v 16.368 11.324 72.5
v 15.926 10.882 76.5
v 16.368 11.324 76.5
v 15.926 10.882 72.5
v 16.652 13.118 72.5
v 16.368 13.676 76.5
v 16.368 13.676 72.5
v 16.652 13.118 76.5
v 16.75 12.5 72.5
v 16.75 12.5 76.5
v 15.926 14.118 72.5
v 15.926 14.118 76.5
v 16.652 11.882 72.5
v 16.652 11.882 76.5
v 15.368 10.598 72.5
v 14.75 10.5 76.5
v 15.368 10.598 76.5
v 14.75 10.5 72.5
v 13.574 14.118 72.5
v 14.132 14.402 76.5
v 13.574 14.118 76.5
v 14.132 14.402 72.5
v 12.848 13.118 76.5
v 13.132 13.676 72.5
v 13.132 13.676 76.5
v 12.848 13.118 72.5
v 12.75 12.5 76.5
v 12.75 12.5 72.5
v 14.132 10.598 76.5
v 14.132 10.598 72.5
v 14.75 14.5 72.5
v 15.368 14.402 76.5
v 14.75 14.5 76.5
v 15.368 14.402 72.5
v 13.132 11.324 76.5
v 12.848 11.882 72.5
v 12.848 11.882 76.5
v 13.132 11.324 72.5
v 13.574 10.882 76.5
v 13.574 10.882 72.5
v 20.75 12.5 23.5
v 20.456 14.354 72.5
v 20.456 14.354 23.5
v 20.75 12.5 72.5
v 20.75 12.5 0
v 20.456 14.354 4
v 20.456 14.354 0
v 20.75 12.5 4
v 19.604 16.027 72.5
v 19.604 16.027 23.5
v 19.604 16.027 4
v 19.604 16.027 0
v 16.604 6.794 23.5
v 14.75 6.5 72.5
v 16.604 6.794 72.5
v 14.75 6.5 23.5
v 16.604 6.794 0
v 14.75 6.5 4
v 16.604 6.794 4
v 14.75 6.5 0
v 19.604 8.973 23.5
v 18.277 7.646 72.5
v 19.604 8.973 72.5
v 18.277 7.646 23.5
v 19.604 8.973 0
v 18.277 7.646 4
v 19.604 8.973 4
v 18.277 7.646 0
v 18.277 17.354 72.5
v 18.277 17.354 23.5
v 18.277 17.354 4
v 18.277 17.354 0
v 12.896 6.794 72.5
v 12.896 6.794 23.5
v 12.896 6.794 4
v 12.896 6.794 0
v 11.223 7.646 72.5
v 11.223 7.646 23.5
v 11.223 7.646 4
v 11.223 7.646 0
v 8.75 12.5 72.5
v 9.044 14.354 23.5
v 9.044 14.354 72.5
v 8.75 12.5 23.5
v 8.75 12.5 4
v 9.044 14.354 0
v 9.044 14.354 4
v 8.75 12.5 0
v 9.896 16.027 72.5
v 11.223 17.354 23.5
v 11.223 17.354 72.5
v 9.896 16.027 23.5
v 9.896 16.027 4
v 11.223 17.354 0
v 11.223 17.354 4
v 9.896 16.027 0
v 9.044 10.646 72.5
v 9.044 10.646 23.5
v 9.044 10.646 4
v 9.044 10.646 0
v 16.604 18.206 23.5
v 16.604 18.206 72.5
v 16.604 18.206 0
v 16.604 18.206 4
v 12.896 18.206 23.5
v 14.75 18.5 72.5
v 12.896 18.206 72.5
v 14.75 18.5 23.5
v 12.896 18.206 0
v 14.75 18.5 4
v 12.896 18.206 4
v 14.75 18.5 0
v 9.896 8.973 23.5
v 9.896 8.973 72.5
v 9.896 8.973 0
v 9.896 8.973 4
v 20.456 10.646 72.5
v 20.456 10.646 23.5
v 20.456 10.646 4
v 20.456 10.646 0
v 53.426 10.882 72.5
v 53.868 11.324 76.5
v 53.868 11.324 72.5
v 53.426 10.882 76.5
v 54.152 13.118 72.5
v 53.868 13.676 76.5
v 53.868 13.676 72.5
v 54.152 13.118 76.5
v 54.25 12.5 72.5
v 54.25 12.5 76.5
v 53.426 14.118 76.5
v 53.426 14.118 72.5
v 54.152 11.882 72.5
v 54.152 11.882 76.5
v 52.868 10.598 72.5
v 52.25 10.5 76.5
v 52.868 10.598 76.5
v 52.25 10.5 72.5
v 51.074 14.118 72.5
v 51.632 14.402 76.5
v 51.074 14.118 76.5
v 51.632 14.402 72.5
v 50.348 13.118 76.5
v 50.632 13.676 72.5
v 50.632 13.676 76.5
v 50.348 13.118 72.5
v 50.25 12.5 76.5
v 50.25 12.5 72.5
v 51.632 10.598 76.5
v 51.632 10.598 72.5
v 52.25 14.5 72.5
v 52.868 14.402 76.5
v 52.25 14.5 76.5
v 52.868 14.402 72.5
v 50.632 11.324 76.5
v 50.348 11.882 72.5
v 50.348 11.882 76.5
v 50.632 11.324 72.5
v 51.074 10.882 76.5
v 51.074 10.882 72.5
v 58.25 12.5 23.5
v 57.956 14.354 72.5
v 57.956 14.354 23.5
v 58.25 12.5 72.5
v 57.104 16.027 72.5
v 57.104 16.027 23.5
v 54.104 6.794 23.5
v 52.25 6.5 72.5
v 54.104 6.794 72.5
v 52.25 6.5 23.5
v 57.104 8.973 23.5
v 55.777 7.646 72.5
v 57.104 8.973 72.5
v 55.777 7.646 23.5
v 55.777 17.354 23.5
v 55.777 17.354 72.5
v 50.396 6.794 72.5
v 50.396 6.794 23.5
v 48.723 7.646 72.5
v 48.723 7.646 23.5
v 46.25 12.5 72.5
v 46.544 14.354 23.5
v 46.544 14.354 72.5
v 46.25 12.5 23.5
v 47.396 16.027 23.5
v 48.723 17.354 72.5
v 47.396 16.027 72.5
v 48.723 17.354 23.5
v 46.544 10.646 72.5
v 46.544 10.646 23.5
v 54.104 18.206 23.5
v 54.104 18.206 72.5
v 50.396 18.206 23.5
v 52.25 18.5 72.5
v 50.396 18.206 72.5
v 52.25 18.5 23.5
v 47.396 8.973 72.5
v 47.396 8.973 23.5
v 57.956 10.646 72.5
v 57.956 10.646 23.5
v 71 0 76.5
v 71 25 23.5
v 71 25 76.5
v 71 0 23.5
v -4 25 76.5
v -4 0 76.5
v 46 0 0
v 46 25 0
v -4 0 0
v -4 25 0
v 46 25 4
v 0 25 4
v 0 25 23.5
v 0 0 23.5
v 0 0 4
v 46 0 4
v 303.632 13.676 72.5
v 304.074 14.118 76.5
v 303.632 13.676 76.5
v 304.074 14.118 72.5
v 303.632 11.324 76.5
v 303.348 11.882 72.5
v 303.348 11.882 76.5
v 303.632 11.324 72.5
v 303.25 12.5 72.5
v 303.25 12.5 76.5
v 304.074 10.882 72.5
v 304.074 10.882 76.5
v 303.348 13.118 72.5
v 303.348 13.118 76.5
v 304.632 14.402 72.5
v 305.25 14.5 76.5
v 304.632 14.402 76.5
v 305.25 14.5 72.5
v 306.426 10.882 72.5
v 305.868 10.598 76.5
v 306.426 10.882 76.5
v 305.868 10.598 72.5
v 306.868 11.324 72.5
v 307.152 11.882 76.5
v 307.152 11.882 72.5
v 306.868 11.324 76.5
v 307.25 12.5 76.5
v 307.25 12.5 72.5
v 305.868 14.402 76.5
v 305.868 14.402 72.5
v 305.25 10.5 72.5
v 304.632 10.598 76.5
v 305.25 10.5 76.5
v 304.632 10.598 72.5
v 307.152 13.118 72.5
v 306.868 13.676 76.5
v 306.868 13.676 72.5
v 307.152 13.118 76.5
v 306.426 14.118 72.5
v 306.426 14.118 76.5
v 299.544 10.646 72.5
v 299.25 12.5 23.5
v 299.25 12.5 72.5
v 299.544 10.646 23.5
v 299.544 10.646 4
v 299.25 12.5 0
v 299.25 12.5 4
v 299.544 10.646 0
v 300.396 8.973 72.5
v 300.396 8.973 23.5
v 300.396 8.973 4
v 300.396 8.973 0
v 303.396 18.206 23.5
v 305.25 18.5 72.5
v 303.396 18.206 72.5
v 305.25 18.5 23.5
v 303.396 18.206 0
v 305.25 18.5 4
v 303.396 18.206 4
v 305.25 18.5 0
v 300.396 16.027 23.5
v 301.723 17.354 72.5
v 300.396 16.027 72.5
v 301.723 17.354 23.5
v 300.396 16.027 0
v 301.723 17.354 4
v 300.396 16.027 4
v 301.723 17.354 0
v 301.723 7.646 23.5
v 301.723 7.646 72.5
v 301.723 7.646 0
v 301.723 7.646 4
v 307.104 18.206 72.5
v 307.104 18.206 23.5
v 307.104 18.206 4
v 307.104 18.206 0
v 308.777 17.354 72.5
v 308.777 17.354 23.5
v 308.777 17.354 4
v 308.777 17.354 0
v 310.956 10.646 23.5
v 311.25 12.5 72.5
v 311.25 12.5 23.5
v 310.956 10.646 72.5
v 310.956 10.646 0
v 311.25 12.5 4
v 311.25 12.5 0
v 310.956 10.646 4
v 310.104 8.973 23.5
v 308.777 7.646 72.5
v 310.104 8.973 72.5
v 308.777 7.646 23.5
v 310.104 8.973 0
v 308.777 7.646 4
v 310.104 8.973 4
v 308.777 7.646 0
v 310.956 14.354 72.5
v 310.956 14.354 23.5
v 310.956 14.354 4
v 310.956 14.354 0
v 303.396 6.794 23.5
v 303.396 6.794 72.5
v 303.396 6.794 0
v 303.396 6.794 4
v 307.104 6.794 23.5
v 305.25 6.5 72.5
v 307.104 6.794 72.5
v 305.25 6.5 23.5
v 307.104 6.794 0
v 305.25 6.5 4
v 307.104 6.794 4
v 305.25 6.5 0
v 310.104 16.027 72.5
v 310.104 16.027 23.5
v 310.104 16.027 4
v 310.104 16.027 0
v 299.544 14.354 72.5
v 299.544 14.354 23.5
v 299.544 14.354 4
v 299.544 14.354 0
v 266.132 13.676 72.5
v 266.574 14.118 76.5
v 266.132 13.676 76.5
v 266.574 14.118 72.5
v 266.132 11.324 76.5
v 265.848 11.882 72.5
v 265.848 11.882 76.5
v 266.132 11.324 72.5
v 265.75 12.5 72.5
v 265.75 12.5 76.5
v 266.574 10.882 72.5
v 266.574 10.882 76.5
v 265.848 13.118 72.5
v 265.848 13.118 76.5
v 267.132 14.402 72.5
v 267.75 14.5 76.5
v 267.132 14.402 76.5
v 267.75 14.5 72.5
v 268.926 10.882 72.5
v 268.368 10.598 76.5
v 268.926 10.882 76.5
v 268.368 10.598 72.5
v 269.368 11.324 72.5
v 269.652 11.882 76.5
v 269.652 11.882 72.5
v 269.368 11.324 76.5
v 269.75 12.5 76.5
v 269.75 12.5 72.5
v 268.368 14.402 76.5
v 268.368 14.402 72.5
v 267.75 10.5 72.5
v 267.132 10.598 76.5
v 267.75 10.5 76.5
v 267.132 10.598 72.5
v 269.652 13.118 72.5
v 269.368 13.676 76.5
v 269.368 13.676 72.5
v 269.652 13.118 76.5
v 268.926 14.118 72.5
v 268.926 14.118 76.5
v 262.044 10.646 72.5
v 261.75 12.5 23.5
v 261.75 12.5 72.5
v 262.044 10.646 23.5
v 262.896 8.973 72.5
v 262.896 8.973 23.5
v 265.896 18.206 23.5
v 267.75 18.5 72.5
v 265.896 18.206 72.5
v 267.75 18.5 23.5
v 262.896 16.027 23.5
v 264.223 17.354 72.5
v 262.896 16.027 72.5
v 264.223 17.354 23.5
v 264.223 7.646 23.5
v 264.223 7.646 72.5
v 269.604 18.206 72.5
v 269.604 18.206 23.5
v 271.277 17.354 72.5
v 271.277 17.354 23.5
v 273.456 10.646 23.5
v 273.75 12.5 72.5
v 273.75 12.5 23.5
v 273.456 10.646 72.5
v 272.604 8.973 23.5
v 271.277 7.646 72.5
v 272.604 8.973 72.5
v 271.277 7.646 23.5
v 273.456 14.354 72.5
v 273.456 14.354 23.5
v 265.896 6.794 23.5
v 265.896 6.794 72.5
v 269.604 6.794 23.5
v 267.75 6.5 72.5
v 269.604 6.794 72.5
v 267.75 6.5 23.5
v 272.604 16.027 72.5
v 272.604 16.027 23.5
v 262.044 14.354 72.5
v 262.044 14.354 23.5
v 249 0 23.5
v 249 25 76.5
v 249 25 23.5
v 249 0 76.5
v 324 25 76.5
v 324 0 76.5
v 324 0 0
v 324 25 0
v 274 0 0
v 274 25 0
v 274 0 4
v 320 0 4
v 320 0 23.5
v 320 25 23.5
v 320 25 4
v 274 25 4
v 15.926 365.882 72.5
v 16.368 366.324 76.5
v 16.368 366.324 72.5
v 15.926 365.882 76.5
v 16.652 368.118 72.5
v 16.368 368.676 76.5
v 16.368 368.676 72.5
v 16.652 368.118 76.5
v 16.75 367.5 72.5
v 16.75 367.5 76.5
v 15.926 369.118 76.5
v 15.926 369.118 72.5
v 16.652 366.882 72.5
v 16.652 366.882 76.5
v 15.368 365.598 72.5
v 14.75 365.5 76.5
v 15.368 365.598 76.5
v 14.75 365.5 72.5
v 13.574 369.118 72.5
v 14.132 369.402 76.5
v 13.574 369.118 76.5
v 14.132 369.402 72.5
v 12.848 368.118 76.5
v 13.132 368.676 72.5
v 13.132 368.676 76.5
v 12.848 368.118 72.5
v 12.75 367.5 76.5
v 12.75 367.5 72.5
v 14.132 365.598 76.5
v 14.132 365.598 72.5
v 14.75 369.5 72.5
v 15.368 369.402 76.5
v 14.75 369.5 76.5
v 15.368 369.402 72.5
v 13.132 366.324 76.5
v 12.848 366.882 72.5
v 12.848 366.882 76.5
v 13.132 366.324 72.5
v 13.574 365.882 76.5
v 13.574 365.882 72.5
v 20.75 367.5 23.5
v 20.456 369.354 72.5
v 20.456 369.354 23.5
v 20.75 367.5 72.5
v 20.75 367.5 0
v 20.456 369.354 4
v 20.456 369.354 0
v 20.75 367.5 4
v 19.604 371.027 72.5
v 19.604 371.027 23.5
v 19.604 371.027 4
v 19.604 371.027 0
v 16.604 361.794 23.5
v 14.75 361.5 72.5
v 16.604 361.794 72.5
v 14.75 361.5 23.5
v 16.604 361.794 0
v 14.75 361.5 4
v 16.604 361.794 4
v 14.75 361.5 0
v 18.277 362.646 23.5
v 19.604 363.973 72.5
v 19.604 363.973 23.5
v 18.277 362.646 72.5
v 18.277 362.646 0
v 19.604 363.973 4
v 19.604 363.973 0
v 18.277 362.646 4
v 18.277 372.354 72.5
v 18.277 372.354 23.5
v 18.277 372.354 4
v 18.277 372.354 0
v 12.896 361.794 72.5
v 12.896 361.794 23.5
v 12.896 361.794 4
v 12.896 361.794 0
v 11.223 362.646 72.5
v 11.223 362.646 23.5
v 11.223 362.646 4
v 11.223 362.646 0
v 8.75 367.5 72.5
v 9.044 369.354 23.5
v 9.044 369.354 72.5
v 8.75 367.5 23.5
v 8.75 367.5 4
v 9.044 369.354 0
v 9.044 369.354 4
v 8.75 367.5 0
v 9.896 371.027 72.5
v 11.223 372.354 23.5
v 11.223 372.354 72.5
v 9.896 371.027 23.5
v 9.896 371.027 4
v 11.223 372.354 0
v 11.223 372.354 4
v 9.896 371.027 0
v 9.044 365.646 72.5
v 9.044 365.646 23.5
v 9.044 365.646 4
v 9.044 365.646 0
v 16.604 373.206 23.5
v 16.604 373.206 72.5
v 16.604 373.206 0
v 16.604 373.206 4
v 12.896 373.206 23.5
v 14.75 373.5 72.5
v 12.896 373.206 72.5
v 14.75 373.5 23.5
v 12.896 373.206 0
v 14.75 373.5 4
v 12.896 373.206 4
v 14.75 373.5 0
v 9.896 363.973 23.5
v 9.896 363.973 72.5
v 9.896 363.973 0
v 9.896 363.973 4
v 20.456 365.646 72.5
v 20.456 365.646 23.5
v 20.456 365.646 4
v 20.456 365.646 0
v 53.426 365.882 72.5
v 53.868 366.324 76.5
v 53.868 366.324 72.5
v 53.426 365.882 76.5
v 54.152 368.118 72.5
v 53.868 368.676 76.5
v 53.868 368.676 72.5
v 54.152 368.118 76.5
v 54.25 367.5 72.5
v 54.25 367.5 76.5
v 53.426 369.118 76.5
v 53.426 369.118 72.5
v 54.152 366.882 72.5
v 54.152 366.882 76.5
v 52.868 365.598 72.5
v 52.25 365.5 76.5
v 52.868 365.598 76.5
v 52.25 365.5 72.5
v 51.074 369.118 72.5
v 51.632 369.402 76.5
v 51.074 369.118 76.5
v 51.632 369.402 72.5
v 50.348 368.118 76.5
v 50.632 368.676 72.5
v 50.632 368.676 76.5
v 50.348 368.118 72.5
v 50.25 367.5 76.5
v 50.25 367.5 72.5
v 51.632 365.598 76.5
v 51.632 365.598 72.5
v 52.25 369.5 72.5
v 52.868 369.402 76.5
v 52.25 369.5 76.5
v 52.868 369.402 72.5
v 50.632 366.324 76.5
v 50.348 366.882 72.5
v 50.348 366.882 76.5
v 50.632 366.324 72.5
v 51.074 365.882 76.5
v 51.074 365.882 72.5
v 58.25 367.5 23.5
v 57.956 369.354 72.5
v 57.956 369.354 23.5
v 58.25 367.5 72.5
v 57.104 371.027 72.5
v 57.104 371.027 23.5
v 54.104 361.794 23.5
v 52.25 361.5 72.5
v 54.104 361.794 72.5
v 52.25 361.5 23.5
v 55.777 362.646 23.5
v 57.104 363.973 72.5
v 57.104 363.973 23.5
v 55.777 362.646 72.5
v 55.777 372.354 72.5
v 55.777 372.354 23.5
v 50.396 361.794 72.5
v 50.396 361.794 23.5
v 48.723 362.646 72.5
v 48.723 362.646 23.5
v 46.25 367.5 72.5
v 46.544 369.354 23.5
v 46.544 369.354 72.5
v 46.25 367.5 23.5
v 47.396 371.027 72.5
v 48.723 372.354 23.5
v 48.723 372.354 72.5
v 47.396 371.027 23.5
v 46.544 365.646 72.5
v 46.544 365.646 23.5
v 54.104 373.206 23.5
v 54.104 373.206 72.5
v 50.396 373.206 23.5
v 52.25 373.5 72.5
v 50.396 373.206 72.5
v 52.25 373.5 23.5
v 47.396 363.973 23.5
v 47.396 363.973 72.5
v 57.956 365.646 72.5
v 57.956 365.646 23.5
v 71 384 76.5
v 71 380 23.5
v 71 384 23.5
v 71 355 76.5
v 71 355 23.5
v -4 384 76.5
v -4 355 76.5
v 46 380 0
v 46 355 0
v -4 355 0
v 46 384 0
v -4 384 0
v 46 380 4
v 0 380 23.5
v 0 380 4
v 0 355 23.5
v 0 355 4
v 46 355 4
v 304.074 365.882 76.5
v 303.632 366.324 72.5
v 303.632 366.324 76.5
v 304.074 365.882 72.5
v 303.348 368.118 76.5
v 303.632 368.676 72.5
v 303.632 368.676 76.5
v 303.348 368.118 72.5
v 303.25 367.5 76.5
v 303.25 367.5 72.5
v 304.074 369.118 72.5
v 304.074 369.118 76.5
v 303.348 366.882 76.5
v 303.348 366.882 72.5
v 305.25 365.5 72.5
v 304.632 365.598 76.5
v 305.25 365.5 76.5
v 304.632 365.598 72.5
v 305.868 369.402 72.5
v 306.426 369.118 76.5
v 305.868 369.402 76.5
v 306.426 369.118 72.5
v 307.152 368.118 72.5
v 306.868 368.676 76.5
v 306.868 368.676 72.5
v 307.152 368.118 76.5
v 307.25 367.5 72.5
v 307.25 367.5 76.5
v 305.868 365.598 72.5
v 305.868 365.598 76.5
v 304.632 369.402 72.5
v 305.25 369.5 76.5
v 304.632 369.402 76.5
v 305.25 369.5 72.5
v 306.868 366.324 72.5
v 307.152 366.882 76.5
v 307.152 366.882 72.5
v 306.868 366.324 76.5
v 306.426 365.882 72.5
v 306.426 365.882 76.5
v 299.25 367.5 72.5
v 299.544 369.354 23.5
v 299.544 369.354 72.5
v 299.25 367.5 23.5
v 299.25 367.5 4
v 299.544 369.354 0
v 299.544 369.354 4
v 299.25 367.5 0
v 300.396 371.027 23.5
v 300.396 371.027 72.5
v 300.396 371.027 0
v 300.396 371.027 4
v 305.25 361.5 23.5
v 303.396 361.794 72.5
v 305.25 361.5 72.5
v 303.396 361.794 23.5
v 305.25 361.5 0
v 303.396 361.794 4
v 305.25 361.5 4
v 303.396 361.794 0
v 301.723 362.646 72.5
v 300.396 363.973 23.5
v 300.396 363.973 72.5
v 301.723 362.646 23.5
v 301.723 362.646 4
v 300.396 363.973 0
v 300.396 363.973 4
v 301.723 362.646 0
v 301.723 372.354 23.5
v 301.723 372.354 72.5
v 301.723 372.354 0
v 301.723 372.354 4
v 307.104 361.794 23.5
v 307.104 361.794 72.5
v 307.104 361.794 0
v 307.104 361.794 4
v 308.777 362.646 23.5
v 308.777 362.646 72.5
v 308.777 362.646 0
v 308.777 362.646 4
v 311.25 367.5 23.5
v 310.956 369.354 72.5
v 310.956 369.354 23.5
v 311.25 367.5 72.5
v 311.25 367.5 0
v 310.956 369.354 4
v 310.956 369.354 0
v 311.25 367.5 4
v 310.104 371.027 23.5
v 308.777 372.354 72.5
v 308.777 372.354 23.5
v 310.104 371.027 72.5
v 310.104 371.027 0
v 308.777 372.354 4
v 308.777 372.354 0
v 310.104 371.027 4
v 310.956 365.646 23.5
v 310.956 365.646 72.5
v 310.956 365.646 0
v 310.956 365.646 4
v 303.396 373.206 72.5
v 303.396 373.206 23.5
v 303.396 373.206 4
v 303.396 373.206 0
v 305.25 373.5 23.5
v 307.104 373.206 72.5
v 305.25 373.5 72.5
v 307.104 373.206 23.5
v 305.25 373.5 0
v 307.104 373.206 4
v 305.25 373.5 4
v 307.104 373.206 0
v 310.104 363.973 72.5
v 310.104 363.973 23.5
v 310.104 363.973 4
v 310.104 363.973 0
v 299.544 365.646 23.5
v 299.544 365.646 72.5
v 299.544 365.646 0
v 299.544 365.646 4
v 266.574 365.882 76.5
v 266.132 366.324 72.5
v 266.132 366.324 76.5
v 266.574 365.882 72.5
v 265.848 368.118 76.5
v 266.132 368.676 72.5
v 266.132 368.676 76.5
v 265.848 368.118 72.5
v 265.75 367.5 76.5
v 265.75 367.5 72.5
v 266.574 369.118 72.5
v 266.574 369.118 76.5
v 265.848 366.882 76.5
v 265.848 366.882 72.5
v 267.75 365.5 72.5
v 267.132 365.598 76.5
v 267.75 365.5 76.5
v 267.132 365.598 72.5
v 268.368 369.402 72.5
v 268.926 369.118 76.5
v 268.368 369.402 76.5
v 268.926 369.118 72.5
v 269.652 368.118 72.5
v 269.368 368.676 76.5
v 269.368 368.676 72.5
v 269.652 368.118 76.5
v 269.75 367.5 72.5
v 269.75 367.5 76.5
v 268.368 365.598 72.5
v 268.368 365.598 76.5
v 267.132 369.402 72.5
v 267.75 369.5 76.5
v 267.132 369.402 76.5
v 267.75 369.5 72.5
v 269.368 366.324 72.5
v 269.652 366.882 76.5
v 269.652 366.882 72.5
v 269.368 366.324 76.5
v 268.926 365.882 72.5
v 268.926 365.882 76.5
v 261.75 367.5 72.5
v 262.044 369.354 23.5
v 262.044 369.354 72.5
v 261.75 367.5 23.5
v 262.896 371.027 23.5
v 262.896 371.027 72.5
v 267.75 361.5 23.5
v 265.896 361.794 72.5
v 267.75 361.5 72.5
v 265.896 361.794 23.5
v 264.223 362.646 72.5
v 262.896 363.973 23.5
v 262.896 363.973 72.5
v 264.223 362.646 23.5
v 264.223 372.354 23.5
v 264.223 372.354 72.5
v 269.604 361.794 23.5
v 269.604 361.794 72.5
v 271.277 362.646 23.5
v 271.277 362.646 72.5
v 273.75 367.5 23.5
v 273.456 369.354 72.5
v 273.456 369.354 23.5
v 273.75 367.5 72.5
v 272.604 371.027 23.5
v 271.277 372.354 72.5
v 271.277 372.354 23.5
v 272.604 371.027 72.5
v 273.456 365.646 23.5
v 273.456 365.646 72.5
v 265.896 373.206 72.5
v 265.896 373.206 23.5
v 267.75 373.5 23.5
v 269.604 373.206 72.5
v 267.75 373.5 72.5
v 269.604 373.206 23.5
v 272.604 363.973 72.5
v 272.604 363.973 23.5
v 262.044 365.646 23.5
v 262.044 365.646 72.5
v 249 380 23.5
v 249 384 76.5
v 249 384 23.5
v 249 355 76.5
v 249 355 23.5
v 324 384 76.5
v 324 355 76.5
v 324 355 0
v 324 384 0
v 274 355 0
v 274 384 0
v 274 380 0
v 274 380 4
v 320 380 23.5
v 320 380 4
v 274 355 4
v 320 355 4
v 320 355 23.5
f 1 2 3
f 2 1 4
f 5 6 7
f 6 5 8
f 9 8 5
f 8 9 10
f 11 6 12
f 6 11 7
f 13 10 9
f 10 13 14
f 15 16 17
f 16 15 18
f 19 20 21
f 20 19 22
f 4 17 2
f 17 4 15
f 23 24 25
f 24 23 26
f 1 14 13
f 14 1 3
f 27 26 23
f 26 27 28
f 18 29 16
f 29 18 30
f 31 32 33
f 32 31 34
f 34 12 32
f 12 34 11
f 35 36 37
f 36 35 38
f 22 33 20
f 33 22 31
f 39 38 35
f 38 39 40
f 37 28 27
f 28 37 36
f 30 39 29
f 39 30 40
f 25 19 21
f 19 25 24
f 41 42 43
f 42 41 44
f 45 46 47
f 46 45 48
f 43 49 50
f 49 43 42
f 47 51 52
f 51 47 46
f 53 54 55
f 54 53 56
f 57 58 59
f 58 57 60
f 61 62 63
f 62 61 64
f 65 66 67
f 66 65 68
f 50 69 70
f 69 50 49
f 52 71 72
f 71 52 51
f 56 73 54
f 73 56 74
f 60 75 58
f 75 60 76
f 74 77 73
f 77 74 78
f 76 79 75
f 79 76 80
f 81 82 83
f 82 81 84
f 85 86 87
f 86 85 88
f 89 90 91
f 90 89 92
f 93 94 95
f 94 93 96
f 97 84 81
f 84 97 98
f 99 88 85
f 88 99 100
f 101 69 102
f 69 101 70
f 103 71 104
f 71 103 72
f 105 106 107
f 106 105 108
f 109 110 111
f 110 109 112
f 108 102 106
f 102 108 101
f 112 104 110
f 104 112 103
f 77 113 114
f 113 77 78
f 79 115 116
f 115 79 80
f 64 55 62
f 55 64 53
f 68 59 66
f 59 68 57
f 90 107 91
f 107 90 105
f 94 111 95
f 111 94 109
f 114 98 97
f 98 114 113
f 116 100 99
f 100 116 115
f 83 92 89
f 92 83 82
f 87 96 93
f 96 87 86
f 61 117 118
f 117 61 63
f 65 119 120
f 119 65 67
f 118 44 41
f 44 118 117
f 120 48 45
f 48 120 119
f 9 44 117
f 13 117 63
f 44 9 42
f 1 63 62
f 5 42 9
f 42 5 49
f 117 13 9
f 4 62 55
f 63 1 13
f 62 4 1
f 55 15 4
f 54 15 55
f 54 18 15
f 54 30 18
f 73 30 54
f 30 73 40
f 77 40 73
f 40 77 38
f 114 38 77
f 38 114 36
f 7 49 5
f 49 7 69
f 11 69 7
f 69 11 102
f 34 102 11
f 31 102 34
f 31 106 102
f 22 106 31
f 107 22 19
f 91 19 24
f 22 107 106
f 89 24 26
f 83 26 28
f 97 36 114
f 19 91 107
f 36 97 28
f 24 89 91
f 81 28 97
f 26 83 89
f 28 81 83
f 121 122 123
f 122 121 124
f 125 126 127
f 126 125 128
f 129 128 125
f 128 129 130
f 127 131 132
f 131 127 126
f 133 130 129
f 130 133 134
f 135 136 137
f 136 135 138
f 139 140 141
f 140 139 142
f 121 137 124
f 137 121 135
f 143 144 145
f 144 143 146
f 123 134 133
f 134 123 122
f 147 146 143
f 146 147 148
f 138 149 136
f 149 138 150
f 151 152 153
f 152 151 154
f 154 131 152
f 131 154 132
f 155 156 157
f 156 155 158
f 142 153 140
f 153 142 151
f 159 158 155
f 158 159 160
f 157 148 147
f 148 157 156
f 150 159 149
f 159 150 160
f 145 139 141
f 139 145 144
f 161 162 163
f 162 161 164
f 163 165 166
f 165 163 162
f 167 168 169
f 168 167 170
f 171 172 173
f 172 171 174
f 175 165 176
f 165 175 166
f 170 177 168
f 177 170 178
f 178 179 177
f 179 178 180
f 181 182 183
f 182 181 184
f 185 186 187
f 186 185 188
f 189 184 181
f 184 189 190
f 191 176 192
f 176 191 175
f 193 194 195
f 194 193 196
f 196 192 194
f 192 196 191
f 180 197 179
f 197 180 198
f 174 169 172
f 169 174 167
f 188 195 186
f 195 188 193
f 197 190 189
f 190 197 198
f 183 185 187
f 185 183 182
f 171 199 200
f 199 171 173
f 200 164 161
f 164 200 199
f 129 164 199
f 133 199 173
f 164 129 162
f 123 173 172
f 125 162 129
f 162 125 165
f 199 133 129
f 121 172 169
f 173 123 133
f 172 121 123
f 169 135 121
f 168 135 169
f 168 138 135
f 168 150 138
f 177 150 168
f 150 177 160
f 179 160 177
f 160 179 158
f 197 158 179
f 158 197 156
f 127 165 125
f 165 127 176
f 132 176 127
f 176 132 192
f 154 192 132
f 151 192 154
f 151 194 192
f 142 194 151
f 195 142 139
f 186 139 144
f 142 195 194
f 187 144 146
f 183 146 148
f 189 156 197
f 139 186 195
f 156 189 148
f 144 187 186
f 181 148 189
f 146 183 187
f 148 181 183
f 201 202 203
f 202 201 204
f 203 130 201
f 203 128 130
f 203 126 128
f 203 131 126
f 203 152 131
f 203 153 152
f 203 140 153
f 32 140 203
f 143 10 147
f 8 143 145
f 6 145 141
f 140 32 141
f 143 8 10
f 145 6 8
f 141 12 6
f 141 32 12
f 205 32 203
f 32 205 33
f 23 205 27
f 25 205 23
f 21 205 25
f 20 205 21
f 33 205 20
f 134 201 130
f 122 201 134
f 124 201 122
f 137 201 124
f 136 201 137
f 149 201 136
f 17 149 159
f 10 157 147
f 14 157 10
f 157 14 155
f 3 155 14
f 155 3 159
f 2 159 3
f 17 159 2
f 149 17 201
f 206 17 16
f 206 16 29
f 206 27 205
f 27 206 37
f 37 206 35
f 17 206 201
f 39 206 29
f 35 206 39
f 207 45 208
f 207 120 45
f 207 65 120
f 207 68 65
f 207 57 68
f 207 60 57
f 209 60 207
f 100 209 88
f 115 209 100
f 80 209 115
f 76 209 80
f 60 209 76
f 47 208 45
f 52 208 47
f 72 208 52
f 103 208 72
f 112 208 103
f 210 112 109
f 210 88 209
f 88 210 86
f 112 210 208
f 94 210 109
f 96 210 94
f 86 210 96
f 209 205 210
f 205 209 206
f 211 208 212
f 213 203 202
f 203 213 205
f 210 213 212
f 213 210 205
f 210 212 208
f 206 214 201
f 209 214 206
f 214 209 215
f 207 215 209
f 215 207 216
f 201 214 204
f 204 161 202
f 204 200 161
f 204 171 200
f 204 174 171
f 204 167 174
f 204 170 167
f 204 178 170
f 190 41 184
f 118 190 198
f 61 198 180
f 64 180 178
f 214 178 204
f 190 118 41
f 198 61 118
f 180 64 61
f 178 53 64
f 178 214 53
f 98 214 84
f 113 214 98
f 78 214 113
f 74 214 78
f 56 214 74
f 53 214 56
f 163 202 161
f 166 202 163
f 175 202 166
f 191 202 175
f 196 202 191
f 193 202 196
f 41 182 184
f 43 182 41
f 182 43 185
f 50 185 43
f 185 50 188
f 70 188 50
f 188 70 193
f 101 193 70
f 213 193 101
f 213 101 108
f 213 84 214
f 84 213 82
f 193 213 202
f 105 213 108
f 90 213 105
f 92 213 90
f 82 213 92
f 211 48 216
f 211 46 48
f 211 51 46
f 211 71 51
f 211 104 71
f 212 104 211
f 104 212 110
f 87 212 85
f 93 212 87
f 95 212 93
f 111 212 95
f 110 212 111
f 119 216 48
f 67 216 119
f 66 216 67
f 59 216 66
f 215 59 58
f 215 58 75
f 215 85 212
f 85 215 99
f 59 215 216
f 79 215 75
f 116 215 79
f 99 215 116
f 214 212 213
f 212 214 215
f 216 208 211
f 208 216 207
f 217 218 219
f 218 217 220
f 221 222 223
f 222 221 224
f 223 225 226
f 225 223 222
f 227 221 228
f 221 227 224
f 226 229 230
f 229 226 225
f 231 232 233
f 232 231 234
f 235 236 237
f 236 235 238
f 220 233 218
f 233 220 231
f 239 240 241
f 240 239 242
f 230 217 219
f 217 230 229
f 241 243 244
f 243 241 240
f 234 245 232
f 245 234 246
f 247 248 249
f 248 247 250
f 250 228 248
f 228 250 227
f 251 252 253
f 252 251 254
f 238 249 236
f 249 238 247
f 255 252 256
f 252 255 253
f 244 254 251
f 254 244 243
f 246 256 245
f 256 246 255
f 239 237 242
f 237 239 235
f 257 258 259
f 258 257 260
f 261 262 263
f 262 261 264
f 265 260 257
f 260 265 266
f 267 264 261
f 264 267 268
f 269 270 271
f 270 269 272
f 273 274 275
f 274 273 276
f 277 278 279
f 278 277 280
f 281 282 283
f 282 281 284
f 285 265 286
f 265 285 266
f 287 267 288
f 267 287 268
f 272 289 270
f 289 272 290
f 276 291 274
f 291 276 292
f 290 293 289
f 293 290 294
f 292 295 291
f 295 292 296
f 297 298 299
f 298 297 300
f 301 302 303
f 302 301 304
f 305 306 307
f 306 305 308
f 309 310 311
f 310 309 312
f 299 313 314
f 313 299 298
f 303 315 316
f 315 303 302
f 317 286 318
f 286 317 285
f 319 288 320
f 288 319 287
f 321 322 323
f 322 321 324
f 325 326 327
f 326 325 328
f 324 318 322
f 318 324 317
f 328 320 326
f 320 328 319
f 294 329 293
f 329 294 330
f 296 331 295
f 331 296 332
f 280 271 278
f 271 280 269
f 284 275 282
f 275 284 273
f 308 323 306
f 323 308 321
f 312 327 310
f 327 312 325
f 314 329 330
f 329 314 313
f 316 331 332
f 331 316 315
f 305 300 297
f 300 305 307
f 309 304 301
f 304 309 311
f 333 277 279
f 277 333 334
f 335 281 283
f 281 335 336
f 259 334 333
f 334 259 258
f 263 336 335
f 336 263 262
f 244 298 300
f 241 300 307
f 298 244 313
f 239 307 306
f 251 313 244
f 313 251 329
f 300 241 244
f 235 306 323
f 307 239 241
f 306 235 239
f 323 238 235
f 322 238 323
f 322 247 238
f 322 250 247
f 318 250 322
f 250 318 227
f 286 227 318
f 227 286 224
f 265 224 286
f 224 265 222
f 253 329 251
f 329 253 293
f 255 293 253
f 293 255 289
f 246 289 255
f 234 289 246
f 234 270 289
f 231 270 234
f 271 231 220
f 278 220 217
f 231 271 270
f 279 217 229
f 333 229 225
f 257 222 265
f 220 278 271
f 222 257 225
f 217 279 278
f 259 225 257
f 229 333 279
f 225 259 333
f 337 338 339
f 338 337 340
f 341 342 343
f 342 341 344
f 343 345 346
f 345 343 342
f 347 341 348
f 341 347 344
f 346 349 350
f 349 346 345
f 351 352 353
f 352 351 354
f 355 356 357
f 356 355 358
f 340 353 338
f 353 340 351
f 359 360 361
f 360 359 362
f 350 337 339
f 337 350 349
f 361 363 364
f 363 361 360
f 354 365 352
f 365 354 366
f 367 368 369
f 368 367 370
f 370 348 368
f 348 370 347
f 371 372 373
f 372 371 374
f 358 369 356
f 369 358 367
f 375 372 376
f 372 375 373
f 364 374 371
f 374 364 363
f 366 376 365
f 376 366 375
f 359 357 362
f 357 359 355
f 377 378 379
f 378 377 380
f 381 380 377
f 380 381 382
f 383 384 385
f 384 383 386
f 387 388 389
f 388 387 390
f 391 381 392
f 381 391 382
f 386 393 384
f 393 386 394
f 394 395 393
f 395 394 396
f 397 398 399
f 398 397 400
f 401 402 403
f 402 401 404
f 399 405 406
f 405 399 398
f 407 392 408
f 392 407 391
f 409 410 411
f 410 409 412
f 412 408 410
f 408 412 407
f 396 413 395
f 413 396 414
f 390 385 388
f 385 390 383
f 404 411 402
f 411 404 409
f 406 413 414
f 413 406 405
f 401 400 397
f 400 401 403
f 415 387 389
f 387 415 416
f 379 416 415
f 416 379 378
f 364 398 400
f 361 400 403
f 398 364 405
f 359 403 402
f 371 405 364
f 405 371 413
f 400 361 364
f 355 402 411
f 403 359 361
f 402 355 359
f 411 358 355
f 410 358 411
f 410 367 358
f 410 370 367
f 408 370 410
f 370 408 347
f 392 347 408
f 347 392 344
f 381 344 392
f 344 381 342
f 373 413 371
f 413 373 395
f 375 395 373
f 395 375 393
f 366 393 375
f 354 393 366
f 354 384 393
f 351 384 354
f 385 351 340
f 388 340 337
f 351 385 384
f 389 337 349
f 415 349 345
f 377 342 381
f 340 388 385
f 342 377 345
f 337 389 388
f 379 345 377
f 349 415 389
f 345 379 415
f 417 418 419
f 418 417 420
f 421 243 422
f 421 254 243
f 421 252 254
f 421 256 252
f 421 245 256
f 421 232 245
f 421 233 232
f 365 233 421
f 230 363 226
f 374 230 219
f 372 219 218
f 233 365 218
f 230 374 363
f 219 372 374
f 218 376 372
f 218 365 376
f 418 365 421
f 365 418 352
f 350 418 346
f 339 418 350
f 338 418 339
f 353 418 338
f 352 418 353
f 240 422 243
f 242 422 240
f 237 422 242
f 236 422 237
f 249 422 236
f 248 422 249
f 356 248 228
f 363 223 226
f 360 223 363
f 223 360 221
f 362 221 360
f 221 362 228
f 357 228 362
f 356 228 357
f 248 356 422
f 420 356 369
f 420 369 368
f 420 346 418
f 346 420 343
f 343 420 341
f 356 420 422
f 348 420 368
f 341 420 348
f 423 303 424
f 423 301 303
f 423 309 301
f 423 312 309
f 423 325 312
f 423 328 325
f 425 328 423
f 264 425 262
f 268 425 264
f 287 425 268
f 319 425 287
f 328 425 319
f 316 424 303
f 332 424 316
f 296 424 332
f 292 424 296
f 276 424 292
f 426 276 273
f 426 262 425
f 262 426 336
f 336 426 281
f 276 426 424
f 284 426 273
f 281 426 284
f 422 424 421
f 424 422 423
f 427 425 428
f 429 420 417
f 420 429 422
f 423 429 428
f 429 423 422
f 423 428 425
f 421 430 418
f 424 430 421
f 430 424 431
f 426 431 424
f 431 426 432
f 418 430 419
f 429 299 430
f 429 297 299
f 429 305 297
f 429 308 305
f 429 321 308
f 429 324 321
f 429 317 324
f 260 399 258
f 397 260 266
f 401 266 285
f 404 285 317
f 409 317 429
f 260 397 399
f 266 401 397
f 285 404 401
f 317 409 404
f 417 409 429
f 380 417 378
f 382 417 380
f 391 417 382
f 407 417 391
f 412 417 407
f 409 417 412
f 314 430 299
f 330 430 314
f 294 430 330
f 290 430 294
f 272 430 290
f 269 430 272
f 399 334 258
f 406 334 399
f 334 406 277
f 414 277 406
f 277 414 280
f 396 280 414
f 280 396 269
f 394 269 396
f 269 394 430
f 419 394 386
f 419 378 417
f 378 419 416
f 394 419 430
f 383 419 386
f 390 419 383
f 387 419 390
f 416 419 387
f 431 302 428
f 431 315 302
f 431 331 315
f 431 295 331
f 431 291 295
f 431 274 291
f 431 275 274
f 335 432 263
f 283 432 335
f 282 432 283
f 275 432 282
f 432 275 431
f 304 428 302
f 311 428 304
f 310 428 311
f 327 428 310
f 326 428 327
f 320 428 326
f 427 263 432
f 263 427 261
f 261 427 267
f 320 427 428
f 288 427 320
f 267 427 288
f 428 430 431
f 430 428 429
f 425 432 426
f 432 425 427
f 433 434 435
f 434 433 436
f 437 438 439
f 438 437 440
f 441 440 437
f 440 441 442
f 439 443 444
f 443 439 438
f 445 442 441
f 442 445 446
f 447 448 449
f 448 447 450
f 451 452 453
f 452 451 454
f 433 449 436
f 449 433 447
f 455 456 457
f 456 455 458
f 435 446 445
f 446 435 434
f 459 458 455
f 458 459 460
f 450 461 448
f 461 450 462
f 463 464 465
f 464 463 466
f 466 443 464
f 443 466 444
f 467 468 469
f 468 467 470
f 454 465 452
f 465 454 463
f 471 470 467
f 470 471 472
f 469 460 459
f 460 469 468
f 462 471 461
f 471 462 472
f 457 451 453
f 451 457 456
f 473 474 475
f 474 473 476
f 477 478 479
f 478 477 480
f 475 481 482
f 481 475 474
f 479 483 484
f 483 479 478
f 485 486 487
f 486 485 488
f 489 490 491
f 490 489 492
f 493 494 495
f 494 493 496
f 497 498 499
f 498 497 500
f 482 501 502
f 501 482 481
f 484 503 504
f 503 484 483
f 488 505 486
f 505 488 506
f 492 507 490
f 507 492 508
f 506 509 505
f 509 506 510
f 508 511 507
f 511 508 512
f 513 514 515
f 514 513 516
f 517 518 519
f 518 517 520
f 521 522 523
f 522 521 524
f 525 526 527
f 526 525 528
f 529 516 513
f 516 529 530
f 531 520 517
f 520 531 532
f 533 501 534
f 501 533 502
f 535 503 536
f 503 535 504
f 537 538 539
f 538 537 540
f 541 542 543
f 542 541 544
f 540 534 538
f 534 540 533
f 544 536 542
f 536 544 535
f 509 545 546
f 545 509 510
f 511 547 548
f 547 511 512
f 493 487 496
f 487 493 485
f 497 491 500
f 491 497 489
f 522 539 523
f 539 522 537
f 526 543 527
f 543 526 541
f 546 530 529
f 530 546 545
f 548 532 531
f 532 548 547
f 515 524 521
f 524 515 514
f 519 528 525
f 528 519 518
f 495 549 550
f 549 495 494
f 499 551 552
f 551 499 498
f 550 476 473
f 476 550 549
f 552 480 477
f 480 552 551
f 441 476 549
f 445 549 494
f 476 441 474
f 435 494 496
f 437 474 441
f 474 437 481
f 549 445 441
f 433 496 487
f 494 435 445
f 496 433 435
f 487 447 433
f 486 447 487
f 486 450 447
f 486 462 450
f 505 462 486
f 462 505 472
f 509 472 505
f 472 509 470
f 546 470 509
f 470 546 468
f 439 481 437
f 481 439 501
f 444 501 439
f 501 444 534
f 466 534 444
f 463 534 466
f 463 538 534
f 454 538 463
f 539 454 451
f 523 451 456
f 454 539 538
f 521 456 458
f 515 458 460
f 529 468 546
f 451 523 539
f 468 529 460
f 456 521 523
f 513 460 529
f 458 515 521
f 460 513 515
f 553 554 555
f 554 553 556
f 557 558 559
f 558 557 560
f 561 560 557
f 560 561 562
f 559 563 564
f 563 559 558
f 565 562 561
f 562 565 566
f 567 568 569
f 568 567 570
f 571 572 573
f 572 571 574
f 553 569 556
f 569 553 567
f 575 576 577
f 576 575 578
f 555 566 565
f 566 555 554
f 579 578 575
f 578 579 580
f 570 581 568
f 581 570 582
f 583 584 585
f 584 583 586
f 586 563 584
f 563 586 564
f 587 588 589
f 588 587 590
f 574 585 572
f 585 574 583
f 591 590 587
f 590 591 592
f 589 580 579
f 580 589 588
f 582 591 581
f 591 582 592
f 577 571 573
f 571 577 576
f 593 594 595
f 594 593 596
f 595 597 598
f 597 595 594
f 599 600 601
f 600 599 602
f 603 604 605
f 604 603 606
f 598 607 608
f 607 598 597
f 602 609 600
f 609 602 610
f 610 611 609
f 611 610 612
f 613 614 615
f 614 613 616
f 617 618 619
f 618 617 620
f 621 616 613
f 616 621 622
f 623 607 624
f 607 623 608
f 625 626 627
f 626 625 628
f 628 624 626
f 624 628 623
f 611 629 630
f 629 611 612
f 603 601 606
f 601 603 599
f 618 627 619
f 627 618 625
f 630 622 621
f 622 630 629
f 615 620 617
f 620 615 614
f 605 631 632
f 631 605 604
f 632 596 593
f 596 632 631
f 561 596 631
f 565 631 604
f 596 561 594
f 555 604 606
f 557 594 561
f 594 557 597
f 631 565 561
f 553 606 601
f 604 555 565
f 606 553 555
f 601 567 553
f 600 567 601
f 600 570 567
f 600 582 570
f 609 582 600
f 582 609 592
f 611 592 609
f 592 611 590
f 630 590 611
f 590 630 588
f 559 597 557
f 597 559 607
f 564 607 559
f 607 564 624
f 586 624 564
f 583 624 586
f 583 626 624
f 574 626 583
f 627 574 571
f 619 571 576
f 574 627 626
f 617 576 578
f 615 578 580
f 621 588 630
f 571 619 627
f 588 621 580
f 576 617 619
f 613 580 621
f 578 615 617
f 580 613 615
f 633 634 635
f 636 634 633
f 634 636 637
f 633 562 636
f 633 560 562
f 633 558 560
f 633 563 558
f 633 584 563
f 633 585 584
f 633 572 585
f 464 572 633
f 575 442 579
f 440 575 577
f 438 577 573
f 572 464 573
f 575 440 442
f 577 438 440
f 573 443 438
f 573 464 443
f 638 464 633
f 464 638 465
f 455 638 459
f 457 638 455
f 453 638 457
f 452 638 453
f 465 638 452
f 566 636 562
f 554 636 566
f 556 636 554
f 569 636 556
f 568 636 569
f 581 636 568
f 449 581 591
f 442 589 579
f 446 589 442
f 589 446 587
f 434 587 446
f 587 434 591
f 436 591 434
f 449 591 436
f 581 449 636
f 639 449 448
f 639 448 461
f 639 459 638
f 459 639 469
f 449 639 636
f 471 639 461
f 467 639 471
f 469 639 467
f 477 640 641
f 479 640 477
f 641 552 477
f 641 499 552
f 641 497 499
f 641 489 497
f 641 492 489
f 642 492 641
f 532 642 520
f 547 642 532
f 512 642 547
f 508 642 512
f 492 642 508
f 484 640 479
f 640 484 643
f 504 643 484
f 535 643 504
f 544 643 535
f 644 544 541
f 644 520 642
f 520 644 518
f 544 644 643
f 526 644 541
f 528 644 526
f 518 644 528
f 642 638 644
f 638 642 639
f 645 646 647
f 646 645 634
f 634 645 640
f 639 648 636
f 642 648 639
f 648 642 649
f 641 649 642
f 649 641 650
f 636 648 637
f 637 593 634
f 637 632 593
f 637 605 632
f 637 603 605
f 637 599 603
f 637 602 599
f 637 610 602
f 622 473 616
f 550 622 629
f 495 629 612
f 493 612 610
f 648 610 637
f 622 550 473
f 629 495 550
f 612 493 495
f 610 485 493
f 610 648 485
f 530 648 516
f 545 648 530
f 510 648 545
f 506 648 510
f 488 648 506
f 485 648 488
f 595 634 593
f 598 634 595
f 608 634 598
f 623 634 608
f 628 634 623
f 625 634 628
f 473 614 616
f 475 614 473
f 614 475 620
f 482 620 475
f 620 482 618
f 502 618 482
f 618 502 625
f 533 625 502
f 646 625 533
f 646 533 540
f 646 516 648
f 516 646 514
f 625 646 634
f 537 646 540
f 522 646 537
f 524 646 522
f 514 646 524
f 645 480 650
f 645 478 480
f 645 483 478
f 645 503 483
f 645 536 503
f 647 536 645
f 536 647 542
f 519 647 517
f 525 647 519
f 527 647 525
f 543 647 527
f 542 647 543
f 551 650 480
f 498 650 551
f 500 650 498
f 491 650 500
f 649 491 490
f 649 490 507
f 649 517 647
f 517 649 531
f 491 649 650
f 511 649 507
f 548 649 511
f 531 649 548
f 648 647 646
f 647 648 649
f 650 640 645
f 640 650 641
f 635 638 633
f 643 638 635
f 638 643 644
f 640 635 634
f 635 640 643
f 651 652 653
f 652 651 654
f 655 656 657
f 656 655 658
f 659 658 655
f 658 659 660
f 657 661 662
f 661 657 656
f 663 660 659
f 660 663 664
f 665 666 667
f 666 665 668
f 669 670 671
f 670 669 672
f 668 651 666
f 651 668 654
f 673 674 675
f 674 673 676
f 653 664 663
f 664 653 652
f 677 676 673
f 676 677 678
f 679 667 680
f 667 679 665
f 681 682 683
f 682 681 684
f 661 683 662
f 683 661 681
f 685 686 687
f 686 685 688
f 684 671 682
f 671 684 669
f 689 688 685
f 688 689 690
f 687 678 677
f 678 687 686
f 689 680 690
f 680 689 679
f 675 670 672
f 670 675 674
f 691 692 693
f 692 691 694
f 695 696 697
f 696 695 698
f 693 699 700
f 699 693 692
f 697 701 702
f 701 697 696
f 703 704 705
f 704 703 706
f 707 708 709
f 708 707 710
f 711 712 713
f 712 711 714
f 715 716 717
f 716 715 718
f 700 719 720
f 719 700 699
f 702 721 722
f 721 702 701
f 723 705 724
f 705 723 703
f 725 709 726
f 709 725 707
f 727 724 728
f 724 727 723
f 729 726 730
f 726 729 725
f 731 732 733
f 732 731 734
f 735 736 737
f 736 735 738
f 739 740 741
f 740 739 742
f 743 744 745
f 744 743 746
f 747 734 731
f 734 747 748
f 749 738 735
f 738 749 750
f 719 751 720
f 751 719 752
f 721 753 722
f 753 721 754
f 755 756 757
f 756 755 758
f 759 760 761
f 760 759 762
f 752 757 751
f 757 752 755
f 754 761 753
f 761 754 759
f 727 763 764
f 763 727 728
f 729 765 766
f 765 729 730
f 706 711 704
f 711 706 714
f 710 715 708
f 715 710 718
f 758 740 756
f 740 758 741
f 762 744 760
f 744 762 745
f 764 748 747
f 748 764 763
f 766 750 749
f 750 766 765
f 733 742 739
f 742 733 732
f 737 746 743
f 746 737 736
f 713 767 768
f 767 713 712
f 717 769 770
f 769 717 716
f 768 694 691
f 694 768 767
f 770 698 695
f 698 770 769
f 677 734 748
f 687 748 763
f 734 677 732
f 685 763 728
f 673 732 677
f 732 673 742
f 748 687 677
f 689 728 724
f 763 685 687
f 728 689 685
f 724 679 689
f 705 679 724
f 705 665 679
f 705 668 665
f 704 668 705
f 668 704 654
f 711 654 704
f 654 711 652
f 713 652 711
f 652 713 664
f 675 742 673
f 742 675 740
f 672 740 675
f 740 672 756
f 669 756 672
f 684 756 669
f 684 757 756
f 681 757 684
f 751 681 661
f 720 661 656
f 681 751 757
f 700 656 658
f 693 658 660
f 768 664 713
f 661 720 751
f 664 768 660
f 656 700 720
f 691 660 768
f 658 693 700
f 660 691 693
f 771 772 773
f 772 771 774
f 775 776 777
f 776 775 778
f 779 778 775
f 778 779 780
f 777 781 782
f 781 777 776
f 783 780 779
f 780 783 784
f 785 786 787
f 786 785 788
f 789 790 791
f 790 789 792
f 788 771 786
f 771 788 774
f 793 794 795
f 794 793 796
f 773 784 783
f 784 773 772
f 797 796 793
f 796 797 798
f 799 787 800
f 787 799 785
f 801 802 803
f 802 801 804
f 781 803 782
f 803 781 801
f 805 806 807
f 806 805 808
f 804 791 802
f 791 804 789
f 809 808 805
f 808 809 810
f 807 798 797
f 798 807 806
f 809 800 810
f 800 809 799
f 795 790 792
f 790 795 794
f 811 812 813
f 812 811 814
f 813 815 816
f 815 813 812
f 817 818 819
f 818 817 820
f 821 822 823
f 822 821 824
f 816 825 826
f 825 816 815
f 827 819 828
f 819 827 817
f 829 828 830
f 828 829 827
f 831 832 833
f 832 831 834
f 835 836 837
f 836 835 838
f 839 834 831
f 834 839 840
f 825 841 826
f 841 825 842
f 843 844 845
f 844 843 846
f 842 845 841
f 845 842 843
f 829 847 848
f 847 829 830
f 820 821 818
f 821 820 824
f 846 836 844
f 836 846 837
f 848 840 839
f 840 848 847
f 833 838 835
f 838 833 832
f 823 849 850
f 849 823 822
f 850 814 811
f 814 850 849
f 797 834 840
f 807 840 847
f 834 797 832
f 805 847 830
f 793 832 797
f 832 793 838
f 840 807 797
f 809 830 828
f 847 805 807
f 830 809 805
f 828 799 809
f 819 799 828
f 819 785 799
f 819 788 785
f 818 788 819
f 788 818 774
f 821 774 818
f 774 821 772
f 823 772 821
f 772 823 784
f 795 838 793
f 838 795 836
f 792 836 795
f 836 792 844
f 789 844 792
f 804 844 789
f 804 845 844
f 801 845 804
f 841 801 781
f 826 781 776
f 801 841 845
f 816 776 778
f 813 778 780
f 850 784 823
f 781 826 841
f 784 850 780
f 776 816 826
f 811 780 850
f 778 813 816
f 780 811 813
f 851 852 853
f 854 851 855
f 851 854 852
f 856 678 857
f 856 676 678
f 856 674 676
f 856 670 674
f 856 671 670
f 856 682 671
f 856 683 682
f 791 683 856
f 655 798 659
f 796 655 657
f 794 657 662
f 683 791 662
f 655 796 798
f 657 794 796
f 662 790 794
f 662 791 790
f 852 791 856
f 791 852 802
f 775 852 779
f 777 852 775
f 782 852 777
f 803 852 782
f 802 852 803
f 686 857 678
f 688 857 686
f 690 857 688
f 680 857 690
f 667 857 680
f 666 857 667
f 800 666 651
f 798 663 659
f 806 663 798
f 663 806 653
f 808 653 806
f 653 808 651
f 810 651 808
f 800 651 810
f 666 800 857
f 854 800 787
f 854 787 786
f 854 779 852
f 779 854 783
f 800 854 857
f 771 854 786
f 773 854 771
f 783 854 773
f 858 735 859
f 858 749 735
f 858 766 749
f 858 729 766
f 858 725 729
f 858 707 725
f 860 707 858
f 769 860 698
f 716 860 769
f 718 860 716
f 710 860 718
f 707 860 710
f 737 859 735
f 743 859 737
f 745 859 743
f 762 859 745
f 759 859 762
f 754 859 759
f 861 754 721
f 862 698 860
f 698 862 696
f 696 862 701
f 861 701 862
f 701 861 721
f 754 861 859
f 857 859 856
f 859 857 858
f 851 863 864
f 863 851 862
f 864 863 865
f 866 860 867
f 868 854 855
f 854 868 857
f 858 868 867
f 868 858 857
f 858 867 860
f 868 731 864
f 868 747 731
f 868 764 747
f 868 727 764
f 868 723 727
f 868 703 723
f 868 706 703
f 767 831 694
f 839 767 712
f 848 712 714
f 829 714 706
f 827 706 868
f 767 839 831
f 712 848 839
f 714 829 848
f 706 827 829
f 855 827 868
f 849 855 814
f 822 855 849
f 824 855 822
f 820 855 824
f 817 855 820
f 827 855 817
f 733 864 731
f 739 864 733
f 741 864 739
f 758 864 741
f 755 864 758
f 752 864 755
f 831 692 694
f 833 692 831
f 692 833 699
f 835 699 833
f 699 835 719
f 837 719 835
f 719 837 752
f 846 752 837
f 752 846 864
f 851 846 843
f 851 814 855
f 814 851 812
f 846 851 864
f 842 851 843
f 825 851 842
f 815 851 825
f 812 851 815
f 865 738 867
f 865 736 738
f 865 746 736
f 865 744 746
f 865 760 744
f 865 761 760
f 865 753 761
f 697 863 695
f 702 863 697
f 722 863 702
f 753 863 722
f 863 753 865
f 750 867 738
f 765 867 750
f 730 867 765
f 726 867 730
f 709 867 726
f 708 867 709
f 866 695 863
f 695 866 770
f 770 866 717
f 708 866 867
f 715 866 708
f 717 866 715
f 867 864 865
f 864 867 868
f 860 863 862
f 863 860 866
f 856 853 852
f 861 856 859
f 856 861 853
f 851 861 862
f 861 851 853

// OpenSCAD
$vpd = 861.88;
$vpt = [ 174.27, 133.18, 67.20 ];
$vpf = 22.50;
$vpr = [ 55.00, 0.00, 25.00 ];

LAPTOP_HEIGHT = 19.5;
WALL_WIDTH = 4;

DESK_HEIGHT = 53;

HOLDER_WIDTH = 75;
HOLDER_DEPTH = 25;
HOLDER_BOTTOM_CUTOUT = 25;

SCREW_HEAD_DIAMETER = 9.5;
SCREW_HEAD_HEIGHT = 3;
SCREW_BODY_DIAMETER = 4;
SCREW_BODY_HEIGHT = 4;
SCREW_DRIVER_DIAMETER = 12;

// These literally do not matter, they're just here to make the final preview look pretty
LAPTOP_WIDTH = 245;
LAPTOP_DEPTH = 355;

total_height = LAPTOP_HEIGHT + WALL_WIDTH + DESK_HEIGHT;
render_helper = 1;

module offset(i) {
    translate([
        (HOLDER_WIDTH / 4) * (i + 1),
        HOLDER_DEPTH / 2,
        0
    ])
    children();
}

module shaft_hole() {
    translate([0, 0, WALL_WIDTH + LAPTOP_HEIGHT - render_helper])
    cylinder(
        h = DESK_HEIGHT + render_helper * 2,
        d = SCREW_BODY_DIAMETER,
        $fn = 20
    );
}

module screwdriver_hole() {
    translate([0, 0, -render_helper])
    cylinder(
        h = total_height - SCREW_BODY_HEIGHT + render_helper,
        d = SCREW_DRIVER_DIAMETER,
        $fn = 20
    );
}

module screw_hole() {
    union() {
        shaft_hole();
        screwdriver_hole();
    }
}

module front_bracket() {
    difference() {
        cube([
            HOLDER_WIDTH,
            HOLDER_DEPTH,
            total_height
        ]);
        
        translate([WALL_WIDTH, -render_helper, WALL_WIDTH])
        cube([
            HOLDER_WIDTH - WALL_WIDTH + render_helper,
            HOLDER_DEPTH + render_helper * 2,
            LAPTOP_HEIGHT
        ]);
        
        translate([
            HOLDER_WIDTH - HOLDER_BOTTOM_CUTOUT,
            -render_helper,
            -render_helper
        ])
        cube([
            HOLDER_BOTTOM_CUTOUT + render_helper,
            HOLDER_DEPTH + render_helper * 2,
            WALL_WIDTH  + render_helper * 2
        ]);
        
        offset(0) {
            screw_hole();
        }
        
        offset(2) {
            screw_hole();
        }
    }
}

module rear_bracket() {
    difference() {
        union() {
            front_bracket();
            
            translate([0, HOLDER_DEPTH, 0])
            cube([HOLDER_WIDTH, WALL_WIDTH, total_height]);
        }
        
        translate([HOLDER_WIDTH - HOLDER_BOTTOM_CUTOUT, HOLDER_DEPTH - render_helper, 0])
        rotate([-90, -90, 0])
        linear_extrude(WALL_WIDTH + render_helper * 2) {
            polygon([
                [0, 0],
                [0, HOLDER_BOTTOM_CUTOUT],
                [total_height - DESK_HEIGHT, HOLDER_BOTTOM_CUTOUT]
            ]);
        }
    }
}


translate([-WALL_WIDTH, 0, 0])
front_bracket();

translate([HOLDER_WIDTH + LAPTOP_WIDTH + WALL_WIDTH, HOLDER_DEPTH, 0])
rotate([0, 0, 180])
front_bracket();

translate([-WALL_WIDTH, LAPTOP_DEPTH, 0])
rear_bracket();

translate([HOLDER_WIDTH + LAPTOP_WIDTH + WALL_WIDTH, LAPTOP_DEPTH, 0])
mirror([1, 0, 0])
rear_bracket();
